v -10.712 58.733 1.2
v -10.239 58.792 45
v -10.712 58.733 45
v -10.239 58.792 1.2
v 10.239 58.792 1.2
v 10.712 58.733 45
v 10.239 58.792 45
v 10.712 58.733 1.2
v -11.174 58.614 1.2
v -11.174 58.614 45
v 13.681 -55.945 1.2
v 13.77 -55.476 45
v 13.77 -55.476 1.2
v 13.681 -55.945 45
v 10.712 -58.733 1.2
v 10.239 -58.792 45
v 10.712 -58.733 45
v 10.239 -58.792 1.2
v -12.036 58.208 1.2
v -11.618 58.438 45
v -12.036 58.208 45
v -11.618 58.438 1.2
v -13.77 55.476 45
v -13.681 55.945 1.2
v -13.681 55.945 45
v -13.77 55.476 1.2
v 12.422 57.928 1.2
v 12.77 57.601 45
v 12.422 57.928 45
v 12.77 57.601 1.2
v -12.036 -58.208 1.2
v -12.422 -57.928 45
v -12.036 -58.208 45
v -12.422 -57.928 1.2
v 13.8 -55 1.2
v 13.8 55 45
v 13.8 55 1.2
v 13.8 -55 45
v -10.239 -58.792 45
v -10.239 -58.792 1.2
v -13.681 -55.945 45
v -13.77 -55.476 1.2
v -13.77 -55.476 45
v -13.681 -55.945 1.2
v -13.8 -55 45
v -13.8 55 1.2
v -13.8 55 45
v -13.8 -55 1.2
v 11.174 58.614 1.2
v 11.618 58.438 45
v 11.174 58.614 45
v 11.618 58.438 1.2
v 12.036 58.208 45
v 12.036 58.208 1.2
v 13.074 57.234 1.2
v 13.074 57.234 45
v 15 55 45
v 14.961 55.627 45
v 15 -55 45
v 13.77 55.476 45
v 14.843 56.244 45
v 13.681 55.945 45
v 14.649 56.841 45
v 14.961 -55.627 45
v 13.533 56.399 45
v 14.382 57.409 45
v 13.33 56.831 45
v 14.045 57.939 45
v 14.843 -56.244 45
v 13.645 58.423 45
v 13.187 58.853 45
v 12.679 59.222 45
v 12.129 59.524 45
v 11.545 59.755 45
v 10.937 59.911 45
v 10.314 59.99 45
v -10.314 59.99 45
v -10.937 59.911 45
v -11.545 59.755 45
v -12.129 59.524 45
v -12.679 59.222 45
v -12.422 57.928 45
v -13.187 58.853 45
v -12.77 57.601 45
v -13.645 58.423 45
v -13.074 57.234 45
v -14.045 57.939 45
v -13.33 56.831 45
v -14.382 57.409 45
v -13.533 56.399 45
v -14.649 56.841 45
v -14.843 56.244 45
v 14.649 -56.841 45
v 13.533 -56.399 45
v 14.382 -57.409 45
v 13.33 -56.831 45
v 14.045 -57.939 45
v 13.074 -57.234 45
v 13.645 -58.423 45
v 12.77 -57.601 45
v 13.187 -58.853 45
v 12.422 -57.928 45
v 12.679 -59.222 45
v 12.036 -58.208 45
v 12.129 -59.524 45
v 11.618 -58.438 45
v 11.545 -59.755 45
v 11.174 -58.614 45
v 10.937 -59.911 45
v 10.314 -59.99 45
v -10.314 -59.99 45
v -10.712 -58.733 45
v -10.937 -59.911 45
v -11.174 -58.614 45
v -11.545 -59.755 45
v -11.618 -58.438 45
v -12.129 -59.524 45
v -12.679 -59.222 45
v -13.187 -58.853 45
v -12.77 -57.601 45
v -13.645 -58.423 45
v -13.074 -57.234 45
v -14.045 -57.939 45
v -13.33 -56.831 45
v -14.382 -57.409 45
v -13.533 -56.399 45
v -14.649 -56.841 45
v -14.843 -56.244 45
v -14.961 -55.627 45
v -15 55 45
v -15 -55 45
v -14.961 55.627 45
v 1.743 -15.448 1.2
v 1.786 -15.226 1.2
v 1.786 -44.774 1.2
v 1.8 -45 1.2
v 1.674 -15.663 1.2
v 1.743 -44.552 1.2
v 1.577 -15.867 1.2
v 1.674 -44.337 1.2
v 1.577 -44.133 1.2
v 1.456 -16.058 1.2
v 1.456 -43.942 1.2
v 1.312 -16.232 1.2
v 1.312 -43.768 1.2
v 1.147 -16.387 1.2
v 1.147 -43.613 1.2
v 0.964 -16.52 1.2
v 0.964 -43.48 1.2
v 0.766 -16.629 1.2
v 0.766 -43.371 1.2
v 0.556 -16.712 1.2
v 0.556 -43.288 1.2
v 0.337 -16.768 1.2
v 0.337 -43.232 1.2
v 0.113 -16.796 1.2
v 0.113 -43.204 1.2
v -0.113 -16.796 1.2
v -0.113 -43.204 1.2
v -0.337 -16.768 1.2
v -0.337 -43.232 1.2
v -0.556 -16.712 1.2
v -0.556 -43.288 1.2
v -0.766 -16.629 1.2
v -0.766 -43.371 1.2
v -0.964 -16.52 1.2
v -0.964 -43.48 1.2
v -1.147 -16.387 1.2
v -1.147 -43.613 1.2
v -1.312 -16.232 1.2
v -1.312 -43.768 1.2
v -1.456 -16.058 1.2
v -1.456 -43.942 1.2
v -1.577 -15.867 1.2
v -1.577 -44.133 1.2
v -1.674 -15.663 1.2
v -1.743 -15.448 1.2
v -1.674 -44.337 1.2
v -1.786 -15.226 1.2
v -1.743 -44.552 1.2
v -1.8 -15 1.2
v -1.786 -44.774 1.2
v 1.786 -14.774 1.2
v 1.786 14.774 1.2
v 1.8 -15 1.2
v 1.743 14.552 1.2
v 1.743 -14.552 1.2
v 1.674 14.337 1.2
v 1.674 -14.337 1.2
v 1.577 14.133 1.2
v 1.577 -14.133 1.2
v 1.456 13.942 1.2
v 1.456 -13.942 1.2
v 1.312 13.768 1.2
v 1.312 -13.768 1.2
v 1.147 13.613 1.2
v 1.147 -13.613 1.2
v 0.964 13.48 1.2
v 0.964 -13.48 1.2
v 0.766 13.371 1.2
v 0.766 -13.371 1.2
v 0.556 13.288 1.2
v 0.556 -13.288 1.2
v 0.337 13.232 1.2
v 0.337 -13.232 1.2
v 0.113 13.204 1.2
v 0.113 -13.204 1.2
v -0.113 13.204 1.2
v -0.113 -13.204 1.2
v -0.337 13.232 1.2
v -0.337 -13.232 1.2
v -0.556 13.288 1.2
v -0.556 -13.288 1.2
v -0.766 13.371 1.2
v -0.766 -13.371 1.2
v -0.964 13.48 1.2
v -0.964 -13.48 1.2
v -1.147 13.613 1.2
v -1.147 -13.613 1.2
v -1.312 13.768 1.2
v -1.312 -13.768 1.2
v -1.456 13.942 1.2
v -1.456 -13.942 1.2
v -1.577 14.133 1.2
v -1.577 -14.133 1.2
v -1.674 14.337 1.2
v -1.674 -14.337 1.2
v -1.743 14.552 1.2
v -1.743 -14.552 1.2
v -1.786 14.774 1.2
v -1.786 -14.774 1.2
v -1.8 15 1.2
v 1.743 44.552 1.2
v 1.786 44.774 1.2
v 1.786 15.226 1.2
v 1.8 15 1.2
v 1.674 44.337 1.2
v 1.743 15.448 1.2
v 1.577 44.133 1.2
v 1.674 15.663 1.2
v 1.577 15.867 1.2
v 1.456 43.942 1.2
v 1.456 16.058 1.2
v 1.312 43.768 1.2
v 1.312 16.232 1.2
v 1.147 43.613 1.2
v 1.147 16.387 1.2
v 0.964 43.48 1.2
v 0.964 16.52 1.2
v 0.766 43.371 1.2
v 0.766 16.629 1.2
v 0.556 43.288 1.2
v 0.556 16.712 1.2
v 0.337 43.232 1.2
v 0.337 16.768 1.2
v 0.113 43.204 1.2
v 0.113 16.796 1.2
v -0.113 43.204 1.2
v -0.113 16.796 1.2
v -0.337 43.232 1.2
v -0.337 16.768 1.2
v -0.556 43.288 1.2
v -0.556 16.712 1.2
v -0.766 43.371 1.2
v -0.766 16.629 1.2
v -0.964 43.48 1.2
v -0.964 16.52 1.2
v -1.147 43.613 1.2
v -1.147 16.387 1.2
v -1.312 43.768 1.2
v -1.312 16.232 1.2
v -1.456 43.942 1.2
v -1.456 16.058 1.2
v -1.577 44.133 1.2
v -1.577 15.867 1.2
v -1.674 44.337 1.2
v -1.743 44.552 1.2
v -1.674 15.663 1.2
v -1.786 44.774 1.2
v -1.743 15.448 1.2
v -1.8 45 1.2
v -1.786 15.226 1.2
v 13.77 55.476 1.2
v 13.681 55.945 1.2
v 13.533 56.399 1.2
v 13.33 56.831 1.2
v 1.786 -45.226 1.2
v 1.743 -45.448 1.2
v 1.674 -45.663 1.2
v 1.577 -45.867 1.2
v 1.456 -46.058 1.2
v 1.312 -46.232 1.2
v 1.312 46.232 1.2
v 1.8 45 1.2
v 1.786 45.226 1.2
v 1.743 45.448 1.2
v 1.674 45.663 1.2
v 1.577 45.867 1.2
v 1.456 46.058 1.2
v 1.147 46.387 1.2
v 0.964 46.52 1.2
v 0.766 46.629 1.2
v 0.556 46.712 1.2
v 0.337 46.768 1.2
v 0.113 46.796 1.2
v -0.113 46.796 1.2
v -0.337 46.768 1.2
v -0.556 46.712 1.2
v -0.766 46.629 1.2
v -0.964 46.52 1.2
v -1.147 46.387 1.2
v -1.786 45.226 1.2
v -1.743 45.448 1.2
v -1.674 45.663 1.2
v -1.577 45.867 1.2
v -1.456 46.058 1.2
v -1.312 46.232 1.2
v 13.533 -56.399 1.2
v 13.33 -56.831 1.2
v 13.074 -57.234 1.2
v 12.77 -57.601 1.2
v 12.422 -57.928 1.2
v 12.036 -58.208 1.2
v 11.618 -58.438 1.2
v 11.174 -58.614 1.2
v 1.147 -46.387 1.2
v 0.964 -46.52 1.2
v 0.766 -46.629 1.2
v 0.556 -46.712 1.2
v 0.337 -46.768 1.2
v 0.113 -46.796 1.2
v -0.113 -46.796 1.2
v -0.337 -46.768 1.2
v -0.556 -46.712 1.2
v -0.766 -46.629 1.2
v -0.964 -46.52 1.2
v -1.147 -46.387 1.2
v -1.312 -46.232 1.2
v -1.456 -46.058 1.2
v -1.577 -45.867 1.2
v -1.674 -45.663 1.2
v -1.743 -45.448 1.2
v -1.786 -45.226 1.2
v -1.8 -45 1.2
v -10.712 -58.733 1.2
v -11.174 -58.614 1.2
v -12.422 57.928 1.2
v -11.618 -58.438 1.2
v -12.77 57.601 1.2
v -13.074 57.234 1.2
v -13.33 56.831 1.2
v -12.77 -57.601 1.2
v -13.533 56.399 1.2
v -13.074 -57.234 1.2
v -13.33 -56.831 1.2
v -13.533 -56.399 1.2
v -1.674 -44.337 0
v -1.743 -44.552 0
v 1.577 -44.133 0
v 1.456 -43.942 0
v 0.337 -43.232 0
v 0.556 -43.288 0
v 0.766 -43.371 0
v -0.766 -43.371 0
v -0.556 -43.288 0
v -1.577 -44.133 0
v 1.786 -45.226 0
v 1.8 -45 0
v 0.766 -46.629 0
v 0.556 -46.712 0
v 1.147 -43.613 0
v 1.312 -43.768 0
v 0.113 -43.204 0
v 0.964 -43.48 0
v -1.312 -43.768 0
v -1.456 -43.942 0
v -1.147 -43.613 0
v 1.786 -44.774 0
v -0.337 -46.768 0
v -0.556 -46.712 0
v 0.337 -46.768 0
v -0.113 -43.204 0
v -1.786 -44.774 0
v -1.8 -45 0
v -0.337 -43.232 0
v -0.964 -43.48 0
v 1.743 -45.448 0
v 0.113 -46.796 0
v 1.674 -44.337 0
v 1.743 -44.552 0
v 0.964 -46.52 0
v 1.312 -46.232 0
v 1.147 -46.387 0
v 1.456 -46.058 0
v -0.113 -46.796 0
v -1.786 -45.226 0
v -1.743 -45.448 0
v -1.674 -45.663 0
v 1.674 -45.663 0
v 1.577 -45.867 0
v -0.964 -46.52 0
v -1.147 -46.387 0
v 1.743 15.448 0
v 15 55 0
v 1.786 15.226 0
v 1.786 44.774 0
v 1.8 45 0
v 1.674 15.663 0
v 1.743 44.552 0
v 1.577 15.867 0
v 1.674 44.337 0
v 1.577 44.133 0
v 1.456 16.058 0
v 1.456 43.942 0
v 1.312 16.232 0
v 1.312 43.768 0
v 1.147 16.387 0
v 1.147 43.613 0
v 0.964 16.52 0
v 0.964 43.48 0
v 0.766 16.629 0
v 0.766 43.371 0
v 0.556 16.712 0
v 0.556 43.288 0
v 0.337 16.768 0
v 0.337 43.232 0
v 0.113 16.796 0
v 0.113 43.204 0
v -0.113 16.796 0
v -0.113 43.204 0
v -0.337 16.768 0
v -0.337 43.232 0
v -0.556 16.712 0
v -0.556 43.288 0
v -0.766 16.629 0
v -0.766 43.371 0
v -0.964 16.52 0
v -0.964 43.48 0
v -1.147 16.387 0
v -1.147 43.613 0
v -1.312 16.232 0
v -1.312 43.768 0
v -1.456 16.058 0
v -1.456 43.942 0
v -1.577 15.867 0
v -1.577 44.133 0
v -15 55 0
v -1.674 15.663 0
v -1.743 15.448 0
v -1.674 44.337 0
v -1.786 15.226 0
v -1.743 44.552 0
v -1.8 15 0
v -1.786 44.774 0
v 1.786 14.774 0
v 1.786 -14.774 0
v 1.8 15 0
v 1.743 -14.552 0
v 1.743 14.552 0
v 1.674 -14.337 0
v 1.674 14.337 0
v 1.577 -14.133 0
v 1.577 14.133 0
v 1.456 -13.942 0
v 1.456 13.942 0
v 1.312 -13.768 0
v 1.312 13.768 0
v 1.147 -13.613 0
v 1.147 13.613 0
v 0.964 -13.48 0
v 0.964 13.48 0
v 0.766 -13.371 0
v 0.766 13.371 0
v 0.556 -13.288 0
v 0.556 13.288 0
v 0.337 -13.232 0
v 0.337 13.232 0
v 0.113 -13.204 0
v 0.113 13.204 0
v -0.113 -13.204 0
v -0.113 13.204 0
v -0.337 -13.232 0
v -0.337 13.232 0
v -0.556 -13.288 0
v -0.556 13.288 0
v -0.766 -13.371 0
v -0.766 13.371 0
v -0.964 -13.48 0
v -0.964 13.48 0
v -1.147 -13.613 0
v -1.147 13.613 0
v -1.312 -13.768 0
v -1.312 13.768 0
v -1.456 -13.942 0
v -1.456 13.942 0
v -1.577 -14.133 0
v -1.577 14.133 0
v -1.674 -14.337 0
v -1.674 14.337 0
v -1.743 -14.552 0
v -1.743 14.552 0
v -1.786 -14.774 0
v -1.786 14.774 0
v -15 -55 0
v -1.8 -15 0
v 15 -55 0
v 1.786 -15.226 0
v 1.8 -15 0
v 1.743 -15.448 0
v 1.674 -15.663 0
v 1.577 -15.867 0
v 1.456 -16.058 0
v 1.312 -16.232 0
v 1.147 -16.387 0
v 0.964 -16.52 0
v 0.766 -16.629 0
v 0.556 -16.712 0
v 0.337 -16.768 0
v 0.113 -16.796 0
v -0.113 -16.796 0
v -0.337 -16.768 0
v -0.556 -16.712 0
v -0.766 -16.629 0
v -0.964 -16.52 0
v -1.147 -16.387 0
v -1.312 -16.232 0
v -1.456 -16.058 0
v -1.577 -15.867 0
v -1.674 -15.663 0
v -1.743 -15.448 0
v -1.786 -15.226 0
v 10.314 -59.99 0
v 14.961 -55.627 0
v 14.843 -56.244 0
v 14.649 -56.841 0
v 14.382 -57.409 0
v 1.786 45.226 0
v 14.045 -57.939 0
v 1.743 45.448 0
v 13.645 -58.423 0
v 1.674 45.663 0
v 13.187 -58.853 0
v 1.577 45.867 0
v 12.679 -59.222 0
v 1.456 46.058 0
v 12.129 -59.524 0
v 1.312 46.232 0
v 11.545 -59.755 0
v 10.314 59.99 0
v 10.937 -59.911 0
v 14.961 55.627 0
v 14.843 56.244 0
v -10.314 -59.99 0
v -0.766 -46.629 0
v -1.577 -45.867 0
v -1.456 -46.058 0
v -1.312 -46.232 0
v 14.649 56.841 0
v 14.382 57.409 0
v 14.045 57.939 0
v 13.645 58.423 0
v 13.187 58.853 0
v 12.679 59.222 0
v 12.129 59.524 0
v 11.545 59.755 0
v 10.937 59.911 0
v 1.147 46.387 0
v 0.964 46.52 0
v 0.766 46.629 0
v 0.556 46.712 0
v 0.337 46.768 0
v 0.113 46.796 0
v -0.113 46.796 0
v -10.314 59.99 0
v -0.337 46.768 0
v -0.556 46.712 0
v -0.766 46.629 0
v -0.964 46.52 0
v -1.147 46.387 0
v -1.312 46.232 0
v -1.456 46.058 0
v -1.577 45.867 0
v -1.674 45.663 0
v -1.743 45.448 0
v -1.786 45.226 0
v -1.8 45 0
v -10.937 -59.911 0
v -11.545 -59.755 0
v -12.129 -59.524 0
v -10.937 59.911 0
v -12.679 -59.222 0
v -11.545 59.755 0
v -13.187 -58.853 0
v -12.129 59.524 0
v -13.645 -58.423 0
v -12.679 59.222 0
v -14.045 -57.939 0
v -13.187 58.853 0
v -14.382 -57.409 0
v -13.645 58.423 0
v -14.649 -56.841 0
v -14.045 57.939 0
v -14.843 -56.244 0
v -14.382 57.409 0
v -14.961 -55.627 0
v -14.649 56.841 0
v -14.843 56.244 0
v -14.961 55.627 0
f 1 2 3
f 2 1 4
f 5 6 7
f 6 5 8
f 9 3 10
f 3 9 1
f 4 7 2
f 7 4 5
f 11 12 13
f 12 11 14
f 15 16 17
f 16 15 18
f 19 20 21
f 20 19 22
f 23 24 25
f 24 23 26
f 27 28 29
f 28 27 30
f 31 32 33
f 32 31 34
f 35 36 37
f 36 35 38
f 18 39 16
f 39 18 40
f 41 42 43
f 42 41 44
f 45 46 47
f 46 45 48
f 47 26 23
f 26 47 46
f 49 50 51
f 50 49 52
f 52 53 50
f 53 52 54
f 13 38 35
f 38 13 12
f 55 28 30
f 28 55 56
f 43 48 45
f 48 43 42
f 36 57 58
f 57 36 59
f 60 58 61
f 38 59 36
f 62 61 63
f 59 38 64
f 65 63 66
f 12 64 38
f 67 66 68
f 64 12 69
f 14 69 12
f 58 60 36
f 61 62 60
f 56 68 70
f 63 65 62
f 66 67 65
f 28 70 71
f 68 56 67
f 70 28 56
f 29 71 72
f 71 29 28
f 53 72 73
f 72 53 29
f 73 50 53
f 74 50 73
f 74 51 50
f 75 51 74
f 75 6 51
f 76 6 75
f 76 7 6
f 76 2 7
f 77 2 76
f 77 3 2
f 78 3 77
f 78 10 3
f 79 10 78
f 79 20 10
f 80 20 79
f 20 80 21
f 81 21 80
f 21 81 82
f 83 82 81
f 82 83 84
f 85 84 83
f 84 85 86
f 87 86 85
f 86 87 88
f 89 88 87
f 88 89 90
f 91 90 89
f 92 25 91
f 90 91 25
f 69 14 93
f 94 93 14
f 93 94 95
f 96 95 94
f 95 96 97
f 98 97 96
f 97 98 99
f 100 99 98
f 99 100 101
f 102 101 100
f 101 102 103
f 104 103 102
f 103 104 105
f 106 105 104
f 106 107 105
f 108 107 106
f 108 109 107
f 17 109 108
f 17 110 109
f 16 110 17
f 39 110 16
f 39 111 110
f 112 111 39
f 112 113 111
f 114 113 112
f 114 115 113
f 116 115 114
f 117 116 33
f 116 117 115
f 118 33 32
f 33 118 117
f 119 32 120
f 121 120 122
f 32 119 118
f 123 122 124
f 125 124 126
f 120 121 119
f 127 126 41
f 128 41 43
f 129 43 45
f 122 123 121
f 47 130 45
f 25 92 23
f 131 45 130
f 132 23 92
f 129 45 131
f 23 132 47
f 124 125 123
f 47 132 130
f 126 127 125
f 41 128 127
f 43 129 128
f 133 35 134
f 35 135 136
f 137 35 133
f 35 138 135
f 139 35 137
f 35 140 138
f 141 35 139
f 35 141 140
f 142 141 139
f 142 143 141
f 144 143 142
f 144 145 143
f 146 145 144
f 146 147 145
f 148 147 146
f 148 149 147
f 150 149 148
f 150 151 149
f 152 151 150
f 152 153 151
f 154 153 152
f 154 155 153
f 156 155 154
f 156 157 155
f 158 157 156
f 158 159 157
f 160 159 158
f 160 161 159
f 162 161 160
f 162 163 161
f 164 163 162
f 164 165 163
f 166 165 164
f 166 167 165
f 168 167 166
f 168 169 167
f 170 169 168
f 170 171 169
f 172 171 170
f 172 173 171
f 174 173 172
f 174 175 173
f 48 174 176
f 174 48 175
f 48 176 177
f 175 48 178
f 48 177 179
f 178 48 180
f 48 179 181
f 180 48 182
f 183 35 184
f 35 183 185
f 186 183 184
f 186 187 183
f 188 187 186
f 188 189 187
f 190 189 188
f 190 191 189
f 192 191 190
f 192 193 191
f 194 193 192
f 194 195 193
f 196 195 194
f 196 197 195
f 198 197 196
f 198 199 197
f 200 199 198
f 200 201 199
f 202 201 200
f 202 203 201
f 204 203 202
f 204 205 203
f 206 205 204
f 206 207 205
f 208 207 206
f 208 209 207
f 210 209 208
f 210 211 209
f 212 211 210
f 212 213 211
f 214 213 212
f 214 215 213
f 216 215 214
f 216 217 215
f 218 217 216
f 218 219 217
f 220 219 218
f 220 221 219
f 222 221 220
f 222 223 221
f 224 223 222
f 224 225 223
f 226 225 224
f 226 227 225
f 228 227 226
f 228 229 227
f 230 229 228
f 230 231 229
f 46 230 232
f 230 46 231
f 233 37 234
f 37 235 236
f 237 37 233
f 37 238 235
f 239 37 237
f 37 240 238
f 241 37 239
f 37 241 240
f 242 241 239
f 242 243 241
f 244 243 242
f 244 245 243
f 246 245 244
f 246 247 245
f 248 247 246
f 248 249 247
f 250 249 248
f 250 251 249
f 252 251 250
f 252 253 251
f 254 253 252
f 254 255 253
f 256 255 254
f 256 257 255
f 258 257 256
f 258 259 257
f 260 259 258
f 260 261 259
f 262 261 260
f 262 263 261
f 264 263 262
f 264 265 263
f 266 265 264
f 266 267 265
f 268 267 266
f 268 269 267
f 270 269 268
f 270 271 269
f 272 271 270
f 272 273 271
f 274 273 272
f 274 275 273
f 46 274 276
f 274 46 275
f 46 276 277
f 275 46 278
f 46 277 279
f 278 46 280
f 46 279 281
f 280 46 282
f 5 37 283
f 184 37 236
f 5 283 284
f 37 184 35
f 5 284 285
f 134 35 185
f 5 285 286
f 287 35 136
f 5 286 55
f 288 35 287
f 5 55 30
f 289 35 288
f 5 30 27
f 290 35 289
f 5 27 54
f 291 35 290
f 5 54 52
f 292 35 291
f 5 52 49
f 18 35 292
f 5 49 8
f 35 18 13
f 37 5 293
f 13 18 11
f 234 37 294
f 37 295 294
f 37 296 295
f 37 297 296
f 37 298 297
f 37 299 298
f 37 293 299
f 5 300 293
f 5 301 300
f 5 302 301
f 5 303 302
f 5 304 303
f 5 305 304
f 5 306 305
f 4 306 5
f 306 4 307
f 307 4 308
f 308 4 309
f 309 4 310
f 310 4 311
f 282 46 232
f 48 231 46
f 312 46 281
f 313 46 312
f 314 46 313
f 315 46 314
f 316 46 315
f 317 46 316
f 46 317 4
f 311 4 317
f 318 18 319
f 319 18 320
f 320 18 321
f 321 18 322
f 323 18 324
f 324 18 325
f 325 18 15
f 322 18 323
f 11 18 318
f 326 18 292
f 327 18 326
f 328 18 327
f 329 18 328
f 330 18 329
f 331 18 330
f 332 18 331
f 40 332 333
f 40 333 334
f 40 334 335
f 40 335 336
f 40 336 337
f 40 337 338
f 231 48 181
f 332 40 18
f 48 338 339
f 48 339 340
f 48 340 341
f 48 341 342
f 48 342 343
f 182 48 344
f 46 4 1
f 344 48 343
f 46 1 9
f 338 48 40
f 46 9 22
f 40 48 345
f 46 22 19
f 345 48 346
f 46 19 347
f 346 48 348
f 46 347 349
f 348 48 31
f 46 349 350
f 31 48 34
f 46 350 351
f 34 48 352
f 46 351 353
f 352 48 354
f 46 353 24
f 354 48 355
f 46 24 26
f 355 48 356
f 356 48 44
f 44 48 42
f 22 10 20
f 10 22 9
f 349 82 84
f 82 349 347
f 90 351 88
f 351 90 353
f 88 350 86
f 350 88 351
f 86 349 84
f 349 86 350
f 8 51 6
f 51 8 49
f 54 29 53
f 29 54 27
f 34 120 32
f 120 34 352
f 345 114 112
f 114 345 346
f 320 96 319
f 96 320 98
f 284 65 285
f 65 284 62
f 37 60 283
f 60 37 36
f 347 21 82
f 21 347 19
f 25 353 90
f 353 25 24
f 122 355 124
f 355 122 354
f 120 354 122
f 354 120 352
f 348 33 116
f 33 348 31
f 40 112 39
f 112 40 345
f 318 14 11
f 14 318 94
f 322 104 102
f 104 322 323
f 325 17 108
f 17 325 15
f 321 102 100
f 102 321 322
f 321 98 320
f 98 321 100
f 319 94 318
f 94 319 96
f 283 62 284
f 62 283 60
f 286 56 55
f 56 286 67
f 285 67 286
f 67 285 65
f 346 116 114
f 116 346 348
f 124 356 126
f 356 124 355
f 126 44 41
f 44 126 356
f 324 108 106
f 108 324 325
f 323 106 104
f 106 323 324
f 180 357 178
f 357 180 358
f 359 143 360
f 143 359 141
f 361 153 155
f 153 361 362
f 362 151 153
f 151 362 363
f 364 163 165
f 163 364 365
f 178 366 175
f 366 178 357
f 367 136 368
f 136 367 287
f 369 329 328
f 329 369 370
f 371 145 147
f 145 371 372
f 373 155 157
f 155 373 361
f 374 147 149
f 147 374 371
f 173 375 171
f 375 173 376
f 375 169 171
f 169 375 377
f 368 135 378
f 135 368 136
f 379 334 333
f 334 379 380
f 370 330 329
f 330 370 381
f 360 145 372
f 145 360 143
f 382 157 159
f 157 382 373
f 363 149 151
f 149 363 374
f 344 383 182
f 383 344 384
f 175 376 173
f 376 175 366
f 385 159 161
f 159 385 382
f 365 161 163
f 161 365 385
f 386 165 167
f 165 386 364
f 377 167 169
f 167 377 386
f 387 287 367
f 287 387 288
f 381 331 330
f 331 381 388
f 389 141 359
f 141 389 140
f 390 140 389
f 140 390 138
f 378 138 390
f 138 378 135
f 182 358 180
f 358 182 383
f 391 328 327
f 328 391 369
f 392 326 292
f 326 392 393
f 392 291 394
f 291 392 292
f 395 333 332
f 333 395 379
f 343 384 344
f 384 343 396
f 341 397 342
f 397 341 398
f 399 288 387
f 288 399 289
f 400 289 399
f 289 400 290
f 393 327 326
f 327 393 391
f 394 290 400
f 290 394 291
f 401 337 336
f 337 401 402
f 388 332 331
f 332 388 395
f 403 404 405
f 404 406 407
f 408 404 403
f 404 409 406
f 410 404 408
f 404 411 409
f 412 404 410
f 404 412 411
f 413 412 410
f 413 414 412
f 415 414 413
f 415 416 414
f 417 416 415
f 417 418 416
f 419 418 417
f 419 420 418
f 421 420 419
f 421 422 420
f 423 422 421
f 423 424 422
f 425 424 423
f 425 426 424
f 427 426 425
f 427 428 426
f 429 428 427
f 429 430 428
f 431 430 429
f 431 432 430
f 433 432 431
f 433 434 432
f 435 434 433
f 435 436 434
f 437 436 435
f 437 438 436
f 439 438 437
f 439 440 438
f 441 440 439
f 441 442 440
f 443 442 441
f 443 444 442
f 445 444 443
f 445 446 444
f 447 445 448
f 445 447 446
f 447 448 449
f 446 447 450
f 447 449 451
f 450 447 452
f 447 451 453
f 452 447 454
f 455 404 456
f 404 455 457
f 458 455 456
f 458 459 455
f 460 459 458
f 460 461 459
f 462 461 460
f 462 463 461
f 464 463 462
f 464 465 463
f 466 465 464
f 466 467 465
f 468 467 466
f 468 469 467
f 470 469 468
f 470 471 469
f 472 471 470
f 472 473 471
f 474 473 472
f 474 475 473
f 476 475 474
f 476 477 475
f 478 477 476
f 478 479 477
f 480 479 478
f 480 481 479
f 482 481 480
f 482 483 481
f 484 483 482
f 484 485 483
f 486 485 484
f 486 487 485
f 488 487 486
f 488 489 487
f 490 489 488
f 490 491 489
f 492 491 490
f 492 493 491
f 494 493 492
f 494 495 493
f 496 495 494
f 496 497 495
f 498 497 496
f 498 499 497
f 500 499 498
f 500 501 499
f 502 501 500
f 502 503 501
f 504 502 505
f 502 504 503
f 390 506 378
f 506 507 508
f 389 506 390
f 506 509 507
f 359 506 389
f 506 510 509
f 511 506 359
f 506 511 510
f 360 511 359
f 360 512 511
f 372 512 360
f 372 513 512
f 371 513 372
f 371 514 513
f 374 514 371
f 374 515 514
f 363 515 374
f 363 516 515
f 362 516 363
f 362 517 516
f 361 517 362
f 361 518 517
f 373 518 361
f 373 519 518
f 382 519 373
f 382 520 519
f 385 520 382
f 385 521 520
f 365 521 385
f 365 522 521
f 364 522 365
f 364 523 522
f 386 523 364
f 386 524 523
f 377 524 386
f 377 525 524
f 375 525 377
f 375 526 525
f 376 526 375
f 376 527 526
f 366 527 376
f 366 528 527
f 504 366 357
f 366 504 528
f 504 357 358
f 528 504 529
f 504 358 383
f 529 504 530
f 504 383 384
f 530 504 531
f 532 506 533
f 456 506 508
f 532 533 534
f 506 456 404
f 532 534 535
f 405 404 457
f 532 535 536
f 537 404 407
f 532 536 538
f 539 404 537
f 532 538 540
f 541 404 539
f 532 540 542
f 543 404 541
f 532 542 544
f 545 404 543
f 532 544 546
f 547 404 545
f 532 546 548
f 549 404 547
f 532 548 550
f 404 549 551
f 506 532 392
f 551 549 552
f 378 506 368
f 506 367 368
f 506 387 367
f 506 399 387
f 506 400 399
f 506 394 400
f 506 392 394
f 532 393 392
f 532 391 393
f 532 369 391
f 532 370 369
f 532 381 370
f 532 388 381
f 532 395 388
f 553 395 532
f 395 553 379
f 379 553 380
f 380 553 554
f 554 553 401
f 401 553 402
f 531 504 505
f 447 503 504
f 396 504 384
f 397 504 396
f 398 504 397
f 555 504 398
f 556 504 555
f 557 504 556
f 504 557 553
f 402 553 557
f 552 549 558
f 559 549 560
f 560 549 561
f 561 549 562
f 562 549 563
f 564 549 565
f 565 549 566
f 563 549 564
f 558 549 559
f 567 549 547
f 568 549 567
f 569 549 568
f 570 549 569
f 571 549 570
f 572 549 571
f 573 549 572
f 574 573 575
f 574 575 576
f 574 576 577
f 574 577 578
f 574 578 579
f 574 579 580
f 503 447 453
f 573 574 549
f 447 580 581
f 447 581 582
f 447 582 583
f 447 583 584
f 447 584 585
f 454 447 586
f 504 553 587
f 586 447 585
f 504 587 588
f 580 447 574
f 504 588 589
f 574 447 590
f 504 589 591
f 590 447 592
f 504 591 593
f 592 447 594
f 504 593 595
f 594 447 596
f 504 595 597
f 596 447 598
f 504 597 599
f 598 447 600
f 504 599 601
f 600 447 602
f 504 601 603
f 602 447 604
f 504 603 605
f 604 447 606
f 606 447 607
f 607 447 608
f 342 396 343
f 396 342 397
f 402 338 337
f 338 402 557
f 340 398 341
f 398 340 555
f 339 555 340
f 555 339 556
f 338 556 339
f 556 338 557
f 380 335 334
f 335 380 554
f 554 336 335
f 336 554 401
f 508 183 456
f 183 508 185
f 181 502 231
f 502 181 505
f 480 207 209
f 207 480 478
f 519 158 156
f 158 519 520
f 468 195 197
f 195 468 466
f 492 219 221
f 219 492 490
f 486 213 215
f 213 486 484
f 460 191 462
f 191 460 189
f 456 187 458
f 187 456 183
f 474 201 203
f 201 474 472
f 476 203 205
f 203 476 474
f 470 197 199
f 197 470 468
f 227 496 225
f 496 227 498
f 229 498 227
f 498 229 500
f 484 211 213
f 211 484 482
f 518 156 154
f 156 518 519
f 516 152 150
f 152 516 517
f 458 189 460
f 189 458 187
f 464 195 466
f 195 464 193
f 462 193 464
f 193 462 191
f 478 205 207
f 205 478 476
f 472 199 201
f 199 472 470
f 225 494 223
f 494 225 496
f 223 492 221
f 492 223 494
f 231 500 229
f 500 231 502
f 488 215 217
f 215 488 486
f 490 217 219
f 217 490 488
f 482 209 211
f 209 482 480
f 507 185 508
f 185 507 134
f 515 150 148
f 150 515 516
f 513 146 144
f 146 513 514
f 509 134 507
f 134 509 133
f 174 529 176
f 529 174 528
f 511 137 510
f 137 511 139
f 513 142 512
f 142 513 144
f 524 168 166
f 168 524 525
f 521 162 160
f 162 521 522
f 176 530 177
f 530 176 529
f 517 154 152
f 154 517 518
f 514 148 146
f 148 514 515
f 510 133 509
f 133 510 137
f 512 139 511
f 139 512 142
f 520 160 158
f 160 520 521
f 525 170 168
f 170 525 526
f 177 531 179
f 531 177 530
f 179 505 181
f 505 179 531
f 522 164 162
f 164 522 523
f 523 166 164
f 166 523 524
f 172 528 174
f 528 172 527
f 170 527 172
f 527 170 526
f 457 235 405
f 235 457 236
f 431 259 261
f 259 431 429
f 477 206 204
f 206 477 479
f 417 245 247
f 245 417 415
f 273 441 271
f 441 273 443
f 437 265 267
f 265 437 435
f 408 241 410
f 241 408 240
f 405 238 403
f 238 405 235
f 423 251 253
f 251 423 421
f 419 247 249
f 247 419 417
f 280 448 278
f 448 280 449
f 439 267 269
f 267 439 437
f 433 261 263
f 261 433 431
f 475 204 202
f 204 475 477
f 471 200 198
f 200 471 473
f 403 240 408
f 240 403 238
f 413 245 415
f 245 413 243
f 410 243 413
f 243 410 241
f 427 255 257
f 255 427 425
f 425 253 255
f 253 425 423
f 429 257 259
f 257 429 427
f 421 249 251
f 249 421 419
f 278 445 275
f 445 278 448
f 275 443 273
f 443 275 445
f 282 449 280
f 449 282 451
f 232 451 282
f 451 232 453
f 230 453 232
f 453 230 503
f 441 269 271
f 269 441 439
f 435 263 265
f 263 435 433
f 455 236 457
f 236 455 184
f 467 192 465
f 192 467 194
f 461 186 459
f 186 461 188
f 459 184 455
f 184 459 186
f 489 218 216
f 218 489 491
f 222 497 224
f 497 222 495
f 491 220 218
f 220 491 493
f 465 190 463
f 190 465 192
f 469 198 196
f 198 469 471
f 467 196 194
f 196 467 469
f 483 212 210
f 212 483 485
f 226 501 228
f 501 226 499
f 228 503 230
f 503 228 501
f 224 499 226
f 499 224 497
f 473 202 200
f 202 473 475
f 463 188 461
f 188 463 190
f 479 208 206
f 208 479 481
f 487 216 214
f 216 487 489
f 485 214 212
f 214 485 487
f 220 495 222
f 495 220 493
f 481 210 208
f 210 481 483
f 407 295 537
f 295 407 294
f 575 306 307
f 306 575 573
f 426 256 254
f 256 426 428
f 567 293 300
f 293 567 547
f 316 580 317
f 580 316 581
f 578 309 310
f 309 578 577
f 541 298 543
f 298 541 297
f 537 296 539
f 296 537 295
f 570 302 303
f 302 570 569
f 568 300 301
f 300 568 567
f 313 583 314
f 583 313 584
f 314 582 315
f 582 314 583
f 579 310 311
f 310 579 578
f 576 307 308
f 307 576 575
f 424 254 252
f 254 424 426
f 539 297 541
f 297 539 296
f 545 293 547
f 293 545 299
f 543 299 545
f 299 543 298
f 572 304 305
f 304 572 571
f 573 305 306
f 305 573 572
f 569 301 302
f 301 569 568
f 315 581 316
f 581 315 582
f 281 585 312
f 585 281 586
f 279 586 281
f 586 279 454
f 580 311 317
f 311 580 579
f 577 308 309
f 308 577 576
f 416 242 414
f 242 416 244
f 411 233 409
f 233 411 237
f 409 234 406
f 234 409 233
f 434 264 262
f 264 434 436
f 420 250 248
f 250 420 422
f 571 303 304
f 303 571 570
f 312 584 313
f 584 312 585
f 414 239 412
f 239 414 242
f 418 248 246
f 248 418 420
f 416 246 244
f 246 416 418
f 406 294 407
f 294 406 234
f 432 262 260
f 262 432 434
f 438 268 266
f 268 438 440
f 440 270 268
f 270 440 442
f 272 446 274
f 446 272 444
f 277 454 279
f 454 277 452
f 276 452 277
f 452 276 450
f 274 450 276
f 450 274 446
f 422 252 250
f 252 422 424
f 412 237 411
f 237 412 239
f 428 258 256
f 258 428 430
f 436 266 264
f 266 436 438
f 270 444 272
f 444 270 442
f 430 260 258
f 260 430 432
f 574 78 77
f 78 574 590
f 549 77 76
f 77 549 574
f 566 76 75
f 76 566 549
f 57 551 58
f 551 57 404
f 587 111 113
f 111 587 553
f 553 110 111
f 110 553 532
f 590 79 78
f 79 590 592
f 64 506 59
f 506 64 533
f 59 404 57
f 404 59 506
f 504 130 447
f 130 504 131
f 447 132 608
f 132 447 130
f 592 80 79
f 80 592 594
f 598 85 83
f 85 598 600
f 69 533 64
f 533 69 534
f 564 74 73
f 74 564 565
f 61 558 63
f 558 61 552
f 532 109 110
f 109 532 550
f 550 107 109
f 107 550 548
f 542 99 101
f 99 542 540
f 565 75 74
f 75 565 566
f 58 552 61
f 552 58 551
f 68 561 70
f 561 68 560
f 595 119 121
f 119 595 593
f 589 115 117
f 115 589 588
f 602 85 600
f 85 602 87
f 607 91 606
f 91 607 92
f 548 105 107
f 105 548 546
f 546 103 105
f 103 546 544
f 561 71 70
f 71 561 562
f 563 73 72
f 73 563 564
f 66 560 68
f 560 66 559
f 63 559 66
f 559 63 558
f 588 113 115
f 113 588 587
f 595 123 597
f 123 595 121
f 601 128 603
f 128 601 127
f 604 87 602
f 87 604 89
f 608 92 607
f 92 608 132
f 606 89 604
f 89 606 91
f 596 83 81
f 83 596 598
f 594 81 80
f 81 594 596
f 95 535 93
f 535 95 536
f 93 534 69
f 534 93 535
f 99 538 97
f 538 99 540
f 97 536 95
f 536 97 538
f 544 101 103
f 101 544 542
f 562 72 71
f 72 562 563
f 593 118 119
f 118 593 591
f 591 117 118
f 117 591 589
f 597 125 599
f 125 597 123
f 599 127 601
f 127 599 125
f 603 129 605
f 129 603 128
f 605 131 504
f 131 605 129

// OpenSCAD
$fn = 50;


difference() {
	union() {
		hull() {
			translate(v = [-10.0000000000, 55.0000000000, 0]) {
				cylinder(h = 45, r = 5);
			}
			translate(v = [10.0000000000, 55.0000000000, 0]) {
				cylinder(h = 45, r = 5);
			}
			translate(v = [-10.0000000000, -55.0000000000, 0]) {
				cylinder(h = 45, r = 5);
			}
			translate(v = [10.0000000000, -55.0000000000, 0]) {
				cylinder(h = 45, r = 5);
			}
		}
	}
	union() {
		translate(v = [0, 0, 1.2000000000]) {
			hull() {
				translate(v = [-10.0000000000, 55.0000000000, 0]) {
					cylinder(h = 43.8000000000, r = 3.8000000000);
				}
				translate(v = [10.0000000000, 55.0000000000, 0]) {
					cylinder(h = 43.8000000000, r = 3.8000000000);
				}
				translate(v = [-10.0000000000, -55.0000000000, 0]) {
					cylinder(h = 43.8000000000, r = 3.8000000000);
				}
				translate(v = [10.0000000000, -55.0000000000, 0]) {
					cylinder(h = 43.8000000000, r = 3.8000000000);
				}
			}
		}
		#translate(v = [0.0000000000, -45.0000000000, 0]) {
			cylinder(h = 1.2000000000, r = 1.8000000000);
		}
		#translate(v = [0.0000000000, -15.0000000000, 0]) {
			cylinder(h = 1.2000000000, r = 1.8000000000);
		}
		#translate(v = [0.0000000000, 15.0000000000, 0]) {
			cylinder(h = 1.2000000000, r = 1.8000000000);
		}
		#translate(v = [0.0000000000, 45.0000000000, 0]) {
			cylinder(h = 1.2000000000, r = 1.8000000000);
		}
	}
}
